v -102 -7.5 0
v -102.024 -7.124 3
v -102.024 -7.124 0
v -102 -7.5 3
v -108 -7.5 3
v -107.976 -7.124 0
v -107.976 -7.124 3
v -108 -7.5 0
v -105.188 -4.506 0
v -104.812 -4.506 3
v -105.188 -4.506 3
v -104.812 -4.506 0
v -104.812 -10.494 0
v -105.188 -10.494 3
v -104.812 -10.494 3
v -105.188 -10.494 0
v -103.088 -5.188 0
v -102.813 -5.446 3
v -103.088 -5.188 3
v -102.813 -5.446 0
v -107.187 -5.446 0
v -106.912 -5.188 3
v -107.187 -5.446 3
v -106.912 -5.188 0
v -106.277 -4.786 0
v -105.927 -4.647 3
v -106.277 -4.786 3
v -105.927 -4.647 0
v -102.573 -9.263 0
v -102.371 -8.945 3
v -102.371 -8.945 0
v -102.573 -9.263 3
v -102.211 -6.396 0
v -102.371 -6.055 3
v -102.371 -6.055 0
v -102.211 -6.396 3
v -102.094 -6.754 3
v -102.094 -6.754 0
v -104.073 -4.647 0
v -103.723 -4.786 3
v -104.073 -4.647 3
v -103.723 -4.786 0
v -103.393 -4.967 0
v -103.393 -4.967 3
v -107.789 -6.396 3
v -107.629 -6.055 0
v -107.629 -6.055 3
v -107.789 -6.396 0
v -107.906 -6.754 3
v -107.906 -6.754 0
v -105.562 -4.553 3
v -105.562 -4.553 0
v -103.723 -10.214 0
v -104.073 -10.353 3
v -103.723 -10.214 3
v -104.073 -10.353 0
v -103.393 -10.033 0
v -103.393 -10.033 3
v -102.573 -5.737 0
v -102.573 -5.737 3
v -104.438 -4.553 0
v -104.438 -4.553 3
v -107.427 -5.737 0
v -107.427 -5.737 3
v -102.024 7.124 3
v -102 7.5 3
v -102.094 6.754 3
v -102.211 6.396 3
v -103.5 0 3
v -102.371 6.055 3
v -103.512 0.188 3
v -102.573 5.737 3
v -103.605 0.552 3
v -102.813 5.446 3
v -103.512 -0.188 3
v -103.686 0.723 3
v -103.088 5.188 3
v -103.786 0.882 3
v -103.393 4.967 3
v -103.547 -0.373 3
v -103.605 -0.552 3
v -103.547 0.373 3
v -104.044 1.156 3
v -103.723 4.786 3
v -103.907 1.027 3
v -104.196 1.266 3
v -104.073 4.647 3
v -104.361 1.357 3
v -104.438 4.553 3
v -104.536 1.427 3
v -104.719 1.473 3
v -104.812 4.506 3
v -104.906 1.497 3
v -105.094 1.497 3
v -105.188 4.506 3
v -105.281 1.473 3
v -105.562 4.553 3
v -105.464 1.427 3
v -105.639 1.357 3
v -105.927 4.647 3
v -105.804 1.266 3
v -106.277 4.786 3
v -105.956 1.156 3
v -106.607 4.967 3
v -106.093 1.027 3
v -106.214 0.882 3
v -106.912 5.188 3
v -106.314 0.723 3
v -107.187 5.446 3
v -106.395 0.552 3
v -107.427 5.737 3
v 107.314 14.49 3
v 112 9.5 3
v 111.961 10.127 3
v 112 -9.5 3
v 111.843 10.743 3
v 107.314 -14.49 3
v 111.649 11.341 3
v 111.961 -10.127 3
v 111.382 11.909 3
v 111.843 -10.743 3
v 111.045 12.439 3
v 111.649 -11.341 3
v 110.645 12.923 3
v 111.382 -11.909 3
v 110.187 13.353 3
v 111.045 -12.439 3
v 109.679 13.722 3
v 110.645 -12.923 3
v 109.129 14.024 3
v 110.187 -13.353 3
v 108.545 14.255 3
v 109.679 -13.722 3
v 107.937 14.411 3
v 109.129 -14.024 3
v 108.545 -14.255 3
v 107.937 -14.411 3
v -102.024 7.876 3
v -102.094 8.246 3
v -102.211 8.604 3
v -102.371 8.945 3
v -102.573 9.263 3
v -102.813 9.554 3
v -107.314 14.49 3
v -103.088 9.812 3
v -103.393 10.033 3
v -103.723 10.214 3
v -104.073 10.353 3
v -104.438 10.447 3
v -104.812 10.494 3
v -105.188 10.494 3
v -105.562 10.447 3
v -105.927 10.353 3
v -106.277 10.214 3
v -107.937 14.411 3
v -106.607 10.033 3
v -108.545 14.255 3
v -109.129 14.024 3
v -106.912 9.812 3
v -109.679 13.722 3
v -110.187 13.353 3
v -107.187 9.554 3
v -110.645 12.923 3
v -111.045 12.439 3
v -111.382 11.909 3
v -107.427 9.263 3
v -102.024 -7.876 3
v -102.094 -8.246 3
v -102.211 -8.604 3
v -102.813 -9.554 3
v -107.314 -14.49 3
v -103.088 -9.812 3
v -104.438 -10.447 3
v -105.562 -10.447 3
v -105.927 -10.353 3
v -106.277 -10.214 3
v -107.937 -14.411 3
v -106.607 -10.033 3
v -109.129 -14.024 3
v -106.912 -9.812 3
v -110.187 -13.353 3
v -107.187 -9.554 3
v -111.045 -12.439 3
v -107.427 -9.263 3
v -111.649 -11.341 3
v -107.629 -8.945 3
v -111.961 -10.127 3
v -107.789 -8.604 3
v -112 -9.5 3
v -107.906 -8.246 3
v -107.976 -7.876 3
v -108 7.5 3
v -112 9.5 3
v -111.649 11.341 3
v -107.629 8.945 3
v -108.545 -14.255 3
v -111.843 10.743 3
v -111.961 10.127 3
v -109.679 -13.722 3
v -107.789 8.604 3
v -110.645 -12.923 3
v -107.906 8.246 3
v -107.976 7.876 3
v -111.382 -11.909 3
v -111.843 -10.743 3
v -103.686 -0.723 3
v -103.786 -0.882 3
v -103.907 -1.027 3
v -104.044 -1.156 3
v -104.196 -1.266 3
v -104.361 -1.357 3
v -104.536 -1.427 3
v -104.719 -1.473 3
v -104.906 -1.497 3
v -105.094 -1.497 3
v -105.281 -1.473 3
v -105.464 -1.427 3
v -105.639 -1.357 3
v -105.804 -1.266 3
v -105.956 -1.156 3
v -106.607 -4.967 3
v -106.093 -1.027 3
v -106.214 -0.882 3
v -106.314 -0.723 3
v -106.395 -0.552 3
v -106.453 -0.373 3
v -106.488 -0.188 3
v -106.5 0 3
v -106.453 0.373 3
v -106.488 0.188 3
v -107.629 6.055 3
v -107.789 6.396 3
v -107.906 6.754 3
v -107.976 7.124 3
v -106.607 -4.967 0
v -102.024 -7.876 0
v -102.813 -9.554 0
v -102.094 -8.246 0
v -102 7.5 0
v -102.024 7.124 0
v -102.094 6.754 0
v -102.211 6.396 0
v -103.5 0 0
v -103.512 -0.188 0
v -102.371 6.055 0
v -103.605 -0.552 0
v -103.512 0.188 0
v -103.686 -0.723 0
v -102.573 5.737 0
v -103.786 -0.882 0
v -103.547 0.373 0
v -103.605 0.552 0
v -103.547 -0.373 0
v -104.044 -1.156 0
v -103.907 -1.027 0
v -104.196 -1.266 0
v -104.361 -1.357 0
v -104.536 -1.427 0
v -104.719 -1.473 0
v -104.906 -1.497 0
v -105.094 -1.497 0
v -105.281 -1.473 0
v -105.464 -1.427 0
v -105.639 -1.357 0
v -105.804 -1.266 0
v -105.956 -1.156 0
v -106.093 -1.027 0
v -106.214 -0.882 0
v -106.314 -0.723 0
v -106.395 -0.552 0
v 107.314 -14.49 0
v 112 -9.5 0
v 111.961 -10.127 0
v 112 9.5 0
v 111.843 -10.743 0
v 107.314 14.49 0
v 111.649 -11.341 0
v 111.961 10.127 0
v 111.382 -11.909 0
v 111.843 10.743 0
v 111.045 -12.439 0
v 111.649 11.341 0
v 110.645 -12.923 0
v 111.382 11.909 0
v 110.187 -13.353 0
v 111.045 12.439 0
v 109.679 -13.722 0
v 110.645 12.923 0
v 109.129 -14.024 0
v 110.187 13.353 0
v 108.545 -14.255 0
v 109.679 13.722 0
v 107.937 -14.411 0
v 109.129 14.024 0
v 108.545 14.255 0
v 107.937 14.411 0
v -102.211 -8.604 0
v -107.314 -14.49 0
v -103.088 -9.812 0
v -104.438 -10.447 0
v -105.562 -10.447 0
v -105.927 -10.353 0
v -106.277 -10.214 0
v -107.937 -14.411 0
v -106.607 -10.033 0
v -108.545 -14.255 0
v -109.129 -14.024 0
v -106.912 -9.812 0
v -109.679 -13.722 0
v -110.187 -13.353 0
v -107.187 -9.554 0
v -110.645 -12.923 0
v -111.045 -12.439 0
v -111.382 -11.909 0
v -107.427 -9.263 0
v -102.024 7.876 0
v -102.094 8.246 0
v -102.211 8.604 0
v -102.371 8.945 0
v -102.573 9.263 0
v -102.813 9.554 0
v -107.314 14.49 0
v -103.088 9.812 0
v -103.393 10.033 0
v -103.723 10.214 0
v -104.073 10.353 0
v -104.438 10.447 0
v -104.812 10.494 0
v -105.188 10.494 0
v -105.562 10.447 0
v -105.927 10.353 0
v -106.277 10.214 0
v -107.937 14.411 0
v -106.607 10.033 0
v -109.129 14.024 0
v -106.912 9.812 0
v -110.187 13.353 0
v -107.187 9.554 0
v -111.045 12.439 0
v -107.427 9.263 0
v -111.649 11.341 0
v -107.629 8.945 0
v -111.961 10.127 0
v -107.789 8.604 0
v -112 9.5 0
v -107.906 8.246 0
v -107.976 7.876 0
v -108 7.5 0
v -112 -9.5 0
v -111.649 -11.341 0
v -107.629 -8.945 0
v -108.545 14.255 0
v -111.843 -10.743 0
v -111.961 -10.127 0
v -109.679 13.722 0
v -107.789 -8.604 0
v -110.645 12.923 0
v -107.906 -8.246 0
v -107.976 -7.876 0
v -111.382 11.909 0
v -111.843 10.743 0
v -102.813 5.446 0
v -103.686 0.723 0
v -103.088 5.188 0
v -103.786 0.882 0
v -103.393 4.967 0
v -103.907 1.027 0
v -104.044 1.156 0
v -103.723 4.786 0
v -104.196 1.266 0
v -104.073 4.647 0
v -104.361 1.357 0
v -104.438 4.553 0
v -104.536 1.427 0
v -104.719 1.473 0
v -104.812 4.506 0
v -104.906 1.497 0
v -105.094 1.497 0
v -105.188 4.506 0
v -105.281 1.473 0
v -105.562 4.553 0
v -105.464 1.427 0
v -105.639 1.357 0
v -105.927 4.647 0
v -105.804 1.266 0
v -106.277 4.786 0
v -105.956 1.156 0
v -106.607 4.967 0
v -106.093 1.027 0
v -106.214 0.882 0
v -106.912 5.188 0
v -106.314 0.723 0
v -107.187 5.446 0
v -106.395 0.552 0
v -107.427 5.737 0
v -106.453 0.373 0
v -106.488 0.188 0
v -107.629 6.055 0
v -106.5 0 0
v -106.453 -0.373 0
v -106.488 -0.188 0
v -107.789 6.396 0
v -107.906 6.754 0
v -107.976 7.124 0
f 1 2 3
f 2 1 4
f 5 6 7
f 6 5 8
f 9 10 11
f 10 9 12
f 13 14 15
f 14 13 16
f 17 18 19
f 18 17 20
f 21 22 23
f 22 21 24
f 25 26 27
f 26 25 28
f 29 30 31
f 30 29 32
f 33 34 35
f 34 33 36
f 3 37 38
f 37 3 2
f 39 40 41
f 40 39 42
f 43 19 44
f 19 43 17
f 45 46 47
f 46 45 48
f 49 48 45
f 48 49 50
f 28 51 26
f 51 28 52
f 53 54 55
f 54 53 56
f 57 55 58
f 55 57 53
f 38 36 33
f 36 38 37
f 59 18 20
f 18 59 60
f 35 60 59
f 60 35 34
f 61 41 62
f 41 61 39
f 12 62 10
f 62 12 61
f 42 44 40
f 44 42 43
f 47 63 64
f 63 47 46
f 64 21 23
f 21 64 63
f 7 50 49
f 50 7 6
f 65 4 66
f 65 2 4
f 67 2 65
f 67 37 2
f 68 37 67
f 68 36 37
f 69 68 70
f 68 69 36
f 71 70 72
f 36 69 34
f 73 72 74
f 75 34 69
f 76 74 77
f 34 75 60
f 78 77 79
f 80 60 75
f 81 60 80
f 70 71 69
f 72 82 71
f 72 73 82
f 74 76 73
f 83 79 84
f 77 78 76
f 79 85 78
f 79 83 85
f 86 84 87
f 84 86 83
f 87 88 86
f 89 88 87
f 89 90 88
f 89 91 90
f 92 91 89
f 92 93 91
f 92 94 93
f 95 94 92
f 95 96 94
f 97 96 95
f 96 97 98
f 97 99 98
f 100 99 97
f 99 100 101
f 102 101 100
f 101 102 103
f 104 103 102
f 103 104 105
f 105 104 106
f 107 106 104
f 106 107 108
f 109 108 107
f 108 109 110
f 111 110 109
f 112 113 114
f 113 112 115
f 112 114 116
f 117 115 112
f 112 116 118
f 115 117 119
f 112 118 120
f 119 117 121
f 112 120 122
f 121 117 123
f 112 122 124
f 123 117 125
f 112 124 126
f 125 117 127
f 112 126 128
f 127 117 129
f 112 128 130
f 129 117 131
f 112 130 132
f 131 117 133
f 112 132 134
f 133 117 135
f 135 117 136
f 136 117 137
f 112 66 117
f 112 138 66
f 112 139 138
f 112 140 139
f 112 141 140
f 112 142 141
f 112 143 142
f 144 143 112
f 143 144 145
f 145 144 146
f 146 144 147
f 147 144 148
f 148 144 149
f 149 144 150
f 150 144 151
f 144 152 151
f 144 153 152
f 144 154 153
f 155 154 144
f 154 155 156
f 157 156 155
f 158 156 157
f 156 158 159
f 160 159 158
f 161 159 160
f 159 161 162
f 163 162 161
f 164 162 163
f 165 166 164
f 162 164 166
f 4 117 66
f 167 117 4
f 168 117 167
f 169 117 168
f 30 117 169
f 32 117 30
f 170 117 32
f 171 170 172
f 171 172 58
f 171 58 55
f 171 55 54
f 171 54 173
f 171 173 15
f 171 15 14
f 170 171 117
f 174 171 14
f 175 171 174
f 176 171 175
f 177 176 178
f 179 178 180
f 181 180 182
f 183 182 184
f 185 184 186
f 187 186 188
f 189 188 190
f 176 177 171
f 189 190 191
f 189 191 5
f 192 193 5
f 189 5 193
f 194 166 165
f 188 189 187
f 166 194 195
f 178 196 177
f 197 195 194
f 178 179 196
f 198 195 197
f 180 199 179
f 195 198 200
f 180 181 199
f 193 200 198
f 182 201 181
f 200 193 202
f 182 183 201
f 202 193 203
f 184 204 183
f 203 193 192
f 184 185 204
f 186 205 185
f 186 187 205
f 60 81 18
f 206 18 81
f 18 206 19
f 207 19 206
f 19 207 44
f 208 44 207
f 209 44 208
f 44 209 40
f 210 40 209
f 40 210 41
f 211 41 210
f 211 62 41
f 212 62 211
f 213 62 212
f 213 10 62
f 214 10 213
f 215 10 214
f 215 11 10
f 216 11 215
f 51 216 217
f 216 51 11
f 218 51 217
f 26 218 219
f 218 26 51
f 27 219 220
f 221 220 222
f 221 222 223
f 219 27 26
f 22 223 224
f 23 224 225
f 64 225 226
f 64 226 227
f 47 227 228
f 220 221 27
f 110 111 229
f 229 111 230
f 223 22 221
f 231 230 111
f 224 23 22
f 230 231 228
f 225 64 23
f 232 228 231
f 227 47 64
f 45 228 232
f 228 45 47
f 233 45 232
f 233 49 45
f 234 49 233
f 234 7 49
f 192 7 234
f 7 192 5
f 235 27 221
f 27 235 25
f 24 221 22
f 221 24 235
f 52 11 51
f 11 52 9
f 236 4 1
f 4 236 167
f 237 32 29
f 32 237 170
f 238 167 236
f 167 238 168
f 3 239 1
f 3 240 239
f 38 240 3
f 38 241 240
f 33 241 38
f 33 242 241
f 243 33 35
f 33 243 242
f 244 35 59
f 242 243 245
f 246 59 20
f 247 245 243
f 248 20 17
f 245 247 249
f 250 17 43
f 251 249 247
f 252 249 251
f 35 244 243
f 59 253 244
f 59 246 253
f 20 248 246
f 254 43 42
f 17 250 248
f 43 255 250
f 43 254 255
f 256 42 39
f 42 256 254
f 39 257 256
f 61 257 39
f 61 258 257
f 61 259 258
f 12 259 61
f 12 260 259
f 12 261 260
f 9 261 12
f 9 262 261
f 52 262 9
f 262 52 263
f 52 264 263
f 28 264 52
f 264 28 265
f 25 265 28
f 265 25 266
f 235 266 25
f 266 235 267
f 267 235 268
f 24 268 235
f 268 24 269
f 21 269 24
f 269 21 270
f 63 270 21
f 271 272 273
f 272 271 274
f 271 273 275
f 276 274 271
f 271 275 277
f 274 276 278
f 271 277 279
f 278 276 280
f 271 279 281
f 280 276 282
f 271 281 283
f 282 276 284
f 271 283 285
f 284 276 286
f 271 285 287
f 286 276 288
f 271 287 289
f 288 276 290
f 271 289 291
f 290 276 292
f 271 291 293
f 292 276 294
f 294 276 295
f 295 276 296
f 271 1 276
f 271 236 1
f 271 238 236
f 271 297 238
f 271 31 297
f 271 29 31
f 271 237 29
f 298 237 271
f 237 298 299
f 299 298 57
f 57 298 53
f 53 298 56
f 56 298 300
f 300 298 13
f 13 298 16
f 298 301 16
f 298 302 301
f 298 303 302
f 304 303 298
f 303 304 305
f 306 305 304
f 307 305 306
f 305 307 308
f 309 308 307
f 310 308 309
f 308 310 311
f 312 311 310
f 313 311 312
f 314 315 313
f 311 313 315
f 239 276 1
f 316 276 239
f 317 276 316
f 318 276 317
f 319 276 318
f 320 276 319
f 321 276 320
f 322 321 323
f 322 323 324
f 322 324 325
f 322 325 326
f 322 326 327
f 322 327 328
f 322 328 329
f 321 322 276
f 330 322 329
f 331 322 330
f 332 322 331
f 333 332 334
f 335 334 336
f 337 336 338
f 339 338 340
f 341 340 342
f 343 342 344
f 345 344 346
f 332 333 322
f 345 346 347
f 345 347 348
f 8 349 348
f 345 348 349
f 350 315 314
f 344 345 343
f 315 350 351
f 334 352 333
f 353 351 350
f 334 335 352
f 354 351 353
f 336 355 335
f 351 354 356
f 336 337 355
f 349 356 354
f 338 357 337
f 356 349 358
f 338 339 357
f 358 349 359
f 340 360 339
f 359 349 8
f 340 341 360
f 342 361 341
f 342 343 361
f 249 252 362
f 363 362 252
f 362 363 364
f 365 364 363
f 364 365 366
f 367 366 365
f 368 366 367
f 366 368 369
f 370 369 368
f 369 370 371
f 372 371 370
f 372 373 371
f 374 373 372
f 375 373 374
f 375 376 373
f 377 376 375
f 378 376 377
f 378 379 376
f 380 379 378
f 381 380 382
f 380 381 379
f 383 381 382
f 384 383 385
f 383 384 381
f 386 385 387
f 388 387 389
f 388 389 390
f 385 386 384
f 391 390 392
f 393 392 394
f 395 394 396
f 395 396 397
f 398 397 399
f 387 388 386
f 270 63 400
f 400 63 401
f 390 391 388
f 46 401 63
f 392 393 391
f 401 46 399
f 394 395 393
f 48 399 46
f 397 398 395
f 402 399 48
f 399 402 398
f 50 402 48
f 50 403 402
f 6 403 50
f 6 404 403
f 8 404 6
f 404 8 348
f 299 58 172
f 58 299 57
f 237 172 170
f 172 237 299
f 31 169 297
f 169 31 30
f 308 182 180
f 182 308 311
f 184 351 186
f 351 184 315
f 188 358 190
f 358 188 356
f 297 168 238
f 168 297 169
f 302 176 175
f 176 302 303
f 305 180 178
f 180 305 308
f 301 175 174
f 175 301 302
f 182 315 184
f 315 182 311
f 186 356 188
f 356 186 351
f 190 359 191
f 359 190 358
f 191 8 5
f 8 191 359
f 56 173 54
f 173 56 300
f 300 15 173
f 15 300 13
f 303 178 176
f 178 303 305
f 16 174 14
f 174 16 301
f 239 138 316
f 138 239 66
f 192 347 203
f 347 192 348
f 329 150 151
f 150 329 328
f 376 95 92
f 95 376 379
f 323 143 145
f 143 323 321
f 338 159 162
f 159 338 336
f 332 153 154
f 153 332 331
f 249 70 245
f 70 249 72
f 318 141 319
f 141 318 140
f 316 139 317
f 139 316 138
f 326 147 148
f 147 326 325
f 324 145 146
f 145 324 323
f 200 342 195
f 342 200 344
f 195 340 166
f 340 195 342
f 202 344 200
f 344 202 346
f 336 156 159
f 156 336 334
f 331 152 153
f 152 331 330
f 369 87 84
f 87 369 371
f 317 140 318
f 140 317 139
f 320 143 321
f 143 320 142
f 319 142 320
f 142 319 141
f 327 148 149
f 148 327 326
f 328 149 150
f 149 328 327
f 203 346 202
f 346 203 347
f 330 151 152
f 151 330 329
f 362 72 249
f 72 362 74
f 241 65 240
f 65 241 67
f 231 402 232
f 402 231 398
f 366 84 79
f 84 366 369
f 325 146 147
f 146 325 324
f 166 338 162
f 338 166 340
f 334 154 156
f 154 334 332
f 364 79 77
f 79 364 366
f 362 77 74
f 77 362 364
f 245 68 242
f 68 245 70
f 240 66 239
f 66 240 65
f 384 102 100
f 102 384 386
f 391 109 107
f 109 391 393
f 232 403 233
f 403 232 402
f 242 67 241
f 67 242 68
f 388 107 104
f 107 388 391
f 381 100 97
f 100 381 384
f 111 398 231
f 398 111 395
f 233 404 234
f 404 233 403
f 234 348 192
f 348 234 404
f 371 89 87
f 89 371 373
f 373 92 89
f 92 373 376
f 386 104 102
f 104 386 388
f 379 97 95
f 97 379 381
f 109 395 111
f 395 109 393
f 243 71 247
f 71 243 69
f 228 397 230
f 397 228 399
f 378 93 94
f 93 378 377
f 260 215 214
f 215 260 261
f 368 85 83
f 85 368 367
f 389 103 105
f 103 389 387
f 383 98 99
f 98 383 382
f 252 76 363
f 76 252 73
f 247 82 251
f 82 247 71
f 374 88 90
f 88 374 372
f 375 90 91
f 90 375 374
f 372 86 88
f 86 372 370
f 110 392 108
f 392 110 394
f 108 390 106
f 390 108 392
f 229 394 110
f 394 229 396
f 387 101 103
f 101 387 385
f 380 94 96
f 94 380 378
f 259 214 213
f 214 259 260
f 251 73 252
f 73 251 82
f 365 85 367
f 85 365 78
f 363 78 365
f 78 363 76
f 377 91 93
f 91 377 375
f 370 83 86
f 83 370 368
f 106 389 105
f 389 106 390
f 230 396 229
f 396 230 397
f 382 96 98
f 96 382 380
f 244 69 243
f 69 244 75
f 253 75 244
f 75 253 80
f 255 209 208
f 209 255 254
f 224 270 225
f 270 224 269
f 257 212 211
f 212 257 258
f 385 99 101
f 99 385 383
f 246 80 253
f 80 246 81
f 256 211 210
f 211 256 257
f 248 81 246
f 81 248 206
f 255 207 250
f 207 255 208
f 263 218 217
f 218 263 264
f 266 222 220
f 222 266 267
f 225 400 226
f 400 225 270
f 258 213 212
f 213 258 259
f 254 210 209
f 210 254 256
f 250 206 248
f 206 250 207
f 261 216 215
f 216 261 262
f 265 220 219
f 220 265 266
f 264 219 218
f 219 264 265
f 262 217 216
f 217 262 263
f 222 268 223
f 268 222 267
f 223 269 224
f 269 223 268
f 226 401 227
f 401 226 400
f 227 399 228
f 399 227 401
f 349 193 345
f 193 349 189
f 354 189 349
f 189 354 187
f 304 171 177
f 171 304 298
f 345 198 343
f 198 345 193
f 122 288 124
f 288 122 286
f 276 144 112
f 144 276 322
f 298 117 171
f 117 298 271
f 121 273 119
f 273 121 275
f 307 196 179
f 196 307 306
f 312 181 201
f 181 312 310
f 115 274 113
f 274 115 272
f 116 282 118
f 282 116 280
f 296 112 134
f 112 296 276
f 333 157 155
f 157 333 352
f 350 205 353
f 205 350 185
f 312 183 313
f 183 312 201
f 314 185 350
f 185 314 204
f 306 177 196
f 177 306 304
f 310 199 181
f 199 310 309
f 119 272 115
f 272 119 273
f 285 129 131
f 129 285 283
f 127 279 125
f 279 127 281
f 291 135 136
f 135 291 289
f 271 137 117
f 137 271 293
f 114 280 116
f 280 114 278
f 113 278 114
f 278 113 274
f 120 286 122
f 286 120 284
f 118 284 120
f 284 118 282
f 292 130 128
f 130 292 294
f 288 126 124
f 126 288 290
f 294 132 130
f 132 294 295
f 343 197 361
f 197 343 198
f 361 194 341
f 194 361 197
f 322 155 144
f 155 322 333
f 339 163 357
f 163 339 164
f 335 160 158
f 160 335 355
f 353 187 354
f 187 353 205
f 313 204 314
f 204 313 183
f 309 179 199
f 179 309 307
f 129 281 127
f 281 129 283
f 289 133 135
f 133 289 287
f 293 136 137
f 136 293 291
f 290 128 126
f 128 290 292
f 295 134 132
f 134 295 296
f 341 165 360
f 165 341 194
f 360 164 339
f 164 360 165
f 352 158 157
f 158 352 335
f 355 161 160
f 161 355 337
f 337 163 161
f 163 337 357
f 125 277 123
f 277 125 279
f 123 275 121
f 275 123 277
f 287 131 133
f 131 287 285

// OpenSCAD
$fn = 50;


difference() {
	union() {
		hull() {
			translate(v = [-107.0000000000, 9.5000000000, 0]) {
				cylinder(h = 3, r = 5);
			}
			translate(v = [107.0000000000, 9.5000000000, 0]) {
				cylinder(h = 3, r = 5);
			}
			translate(v = [-107.0000000000, -9.5000000000, 0]) {
				cylinder(h = 3, r = 5);
			}
			translate(v = [107.0000000000, -9.5000000000, 0]) {
				cylinder(h = 3, r = 5);
			}
		}
	}
	union() {
		translate(v = [-105.0000000000, -7.5000000000, 0]) {
			cylinder(h = 3, r = 3.0000000000);
		}
		translate(v = [-105.0000000000, 7.5000000000, 0]) {
			cylinder(h = 3, r = 3.0000000000);
		}
		translate(v = [-105.0000000000, -7.5000000000, 0]) {
			cylinder(h = 3, r = 1.5000000000);
		}
		translate(v = [-105.0000000000, 0.0000000000, 0]) {
			cylinder(h = 3, r = 1.5000000000);
		}
		translate(v = [-105.0000000000, 7.5000000000, 0]) {
			cylinder(h = 3, r = 1.5000000000);
		}
		translate(v = [-105.0000000000, -7.5000000000, 0]) {
			cylinder(h = 3, r = 1.5000000000);
		}
		translate(v = [-105.0000000000, 0.0000000000, 0]) {
			cylinder(h = 3, r = 1.5000000000);
		}
		translate(v = [-105.0000000000, 7.5000000000, 0]) {
			cylinder(h = 3, r = 1.5000000000);
		}
		translate(v = [-105.0000000000, -7.5000000000, 0]) {
			cylinder(h = 3, r = 1.5000000000);
		}
		translate(v = [-105.0000000000, 0.0000000000, 0]) {
			cylinder(h = 3, r = 1.5000000000);
		}
		translate(v = [-105.0000000000, 7.5000000000, 0]) {
			cylinder(h = 3, r = 1.5000000000);
		}
	}
}
